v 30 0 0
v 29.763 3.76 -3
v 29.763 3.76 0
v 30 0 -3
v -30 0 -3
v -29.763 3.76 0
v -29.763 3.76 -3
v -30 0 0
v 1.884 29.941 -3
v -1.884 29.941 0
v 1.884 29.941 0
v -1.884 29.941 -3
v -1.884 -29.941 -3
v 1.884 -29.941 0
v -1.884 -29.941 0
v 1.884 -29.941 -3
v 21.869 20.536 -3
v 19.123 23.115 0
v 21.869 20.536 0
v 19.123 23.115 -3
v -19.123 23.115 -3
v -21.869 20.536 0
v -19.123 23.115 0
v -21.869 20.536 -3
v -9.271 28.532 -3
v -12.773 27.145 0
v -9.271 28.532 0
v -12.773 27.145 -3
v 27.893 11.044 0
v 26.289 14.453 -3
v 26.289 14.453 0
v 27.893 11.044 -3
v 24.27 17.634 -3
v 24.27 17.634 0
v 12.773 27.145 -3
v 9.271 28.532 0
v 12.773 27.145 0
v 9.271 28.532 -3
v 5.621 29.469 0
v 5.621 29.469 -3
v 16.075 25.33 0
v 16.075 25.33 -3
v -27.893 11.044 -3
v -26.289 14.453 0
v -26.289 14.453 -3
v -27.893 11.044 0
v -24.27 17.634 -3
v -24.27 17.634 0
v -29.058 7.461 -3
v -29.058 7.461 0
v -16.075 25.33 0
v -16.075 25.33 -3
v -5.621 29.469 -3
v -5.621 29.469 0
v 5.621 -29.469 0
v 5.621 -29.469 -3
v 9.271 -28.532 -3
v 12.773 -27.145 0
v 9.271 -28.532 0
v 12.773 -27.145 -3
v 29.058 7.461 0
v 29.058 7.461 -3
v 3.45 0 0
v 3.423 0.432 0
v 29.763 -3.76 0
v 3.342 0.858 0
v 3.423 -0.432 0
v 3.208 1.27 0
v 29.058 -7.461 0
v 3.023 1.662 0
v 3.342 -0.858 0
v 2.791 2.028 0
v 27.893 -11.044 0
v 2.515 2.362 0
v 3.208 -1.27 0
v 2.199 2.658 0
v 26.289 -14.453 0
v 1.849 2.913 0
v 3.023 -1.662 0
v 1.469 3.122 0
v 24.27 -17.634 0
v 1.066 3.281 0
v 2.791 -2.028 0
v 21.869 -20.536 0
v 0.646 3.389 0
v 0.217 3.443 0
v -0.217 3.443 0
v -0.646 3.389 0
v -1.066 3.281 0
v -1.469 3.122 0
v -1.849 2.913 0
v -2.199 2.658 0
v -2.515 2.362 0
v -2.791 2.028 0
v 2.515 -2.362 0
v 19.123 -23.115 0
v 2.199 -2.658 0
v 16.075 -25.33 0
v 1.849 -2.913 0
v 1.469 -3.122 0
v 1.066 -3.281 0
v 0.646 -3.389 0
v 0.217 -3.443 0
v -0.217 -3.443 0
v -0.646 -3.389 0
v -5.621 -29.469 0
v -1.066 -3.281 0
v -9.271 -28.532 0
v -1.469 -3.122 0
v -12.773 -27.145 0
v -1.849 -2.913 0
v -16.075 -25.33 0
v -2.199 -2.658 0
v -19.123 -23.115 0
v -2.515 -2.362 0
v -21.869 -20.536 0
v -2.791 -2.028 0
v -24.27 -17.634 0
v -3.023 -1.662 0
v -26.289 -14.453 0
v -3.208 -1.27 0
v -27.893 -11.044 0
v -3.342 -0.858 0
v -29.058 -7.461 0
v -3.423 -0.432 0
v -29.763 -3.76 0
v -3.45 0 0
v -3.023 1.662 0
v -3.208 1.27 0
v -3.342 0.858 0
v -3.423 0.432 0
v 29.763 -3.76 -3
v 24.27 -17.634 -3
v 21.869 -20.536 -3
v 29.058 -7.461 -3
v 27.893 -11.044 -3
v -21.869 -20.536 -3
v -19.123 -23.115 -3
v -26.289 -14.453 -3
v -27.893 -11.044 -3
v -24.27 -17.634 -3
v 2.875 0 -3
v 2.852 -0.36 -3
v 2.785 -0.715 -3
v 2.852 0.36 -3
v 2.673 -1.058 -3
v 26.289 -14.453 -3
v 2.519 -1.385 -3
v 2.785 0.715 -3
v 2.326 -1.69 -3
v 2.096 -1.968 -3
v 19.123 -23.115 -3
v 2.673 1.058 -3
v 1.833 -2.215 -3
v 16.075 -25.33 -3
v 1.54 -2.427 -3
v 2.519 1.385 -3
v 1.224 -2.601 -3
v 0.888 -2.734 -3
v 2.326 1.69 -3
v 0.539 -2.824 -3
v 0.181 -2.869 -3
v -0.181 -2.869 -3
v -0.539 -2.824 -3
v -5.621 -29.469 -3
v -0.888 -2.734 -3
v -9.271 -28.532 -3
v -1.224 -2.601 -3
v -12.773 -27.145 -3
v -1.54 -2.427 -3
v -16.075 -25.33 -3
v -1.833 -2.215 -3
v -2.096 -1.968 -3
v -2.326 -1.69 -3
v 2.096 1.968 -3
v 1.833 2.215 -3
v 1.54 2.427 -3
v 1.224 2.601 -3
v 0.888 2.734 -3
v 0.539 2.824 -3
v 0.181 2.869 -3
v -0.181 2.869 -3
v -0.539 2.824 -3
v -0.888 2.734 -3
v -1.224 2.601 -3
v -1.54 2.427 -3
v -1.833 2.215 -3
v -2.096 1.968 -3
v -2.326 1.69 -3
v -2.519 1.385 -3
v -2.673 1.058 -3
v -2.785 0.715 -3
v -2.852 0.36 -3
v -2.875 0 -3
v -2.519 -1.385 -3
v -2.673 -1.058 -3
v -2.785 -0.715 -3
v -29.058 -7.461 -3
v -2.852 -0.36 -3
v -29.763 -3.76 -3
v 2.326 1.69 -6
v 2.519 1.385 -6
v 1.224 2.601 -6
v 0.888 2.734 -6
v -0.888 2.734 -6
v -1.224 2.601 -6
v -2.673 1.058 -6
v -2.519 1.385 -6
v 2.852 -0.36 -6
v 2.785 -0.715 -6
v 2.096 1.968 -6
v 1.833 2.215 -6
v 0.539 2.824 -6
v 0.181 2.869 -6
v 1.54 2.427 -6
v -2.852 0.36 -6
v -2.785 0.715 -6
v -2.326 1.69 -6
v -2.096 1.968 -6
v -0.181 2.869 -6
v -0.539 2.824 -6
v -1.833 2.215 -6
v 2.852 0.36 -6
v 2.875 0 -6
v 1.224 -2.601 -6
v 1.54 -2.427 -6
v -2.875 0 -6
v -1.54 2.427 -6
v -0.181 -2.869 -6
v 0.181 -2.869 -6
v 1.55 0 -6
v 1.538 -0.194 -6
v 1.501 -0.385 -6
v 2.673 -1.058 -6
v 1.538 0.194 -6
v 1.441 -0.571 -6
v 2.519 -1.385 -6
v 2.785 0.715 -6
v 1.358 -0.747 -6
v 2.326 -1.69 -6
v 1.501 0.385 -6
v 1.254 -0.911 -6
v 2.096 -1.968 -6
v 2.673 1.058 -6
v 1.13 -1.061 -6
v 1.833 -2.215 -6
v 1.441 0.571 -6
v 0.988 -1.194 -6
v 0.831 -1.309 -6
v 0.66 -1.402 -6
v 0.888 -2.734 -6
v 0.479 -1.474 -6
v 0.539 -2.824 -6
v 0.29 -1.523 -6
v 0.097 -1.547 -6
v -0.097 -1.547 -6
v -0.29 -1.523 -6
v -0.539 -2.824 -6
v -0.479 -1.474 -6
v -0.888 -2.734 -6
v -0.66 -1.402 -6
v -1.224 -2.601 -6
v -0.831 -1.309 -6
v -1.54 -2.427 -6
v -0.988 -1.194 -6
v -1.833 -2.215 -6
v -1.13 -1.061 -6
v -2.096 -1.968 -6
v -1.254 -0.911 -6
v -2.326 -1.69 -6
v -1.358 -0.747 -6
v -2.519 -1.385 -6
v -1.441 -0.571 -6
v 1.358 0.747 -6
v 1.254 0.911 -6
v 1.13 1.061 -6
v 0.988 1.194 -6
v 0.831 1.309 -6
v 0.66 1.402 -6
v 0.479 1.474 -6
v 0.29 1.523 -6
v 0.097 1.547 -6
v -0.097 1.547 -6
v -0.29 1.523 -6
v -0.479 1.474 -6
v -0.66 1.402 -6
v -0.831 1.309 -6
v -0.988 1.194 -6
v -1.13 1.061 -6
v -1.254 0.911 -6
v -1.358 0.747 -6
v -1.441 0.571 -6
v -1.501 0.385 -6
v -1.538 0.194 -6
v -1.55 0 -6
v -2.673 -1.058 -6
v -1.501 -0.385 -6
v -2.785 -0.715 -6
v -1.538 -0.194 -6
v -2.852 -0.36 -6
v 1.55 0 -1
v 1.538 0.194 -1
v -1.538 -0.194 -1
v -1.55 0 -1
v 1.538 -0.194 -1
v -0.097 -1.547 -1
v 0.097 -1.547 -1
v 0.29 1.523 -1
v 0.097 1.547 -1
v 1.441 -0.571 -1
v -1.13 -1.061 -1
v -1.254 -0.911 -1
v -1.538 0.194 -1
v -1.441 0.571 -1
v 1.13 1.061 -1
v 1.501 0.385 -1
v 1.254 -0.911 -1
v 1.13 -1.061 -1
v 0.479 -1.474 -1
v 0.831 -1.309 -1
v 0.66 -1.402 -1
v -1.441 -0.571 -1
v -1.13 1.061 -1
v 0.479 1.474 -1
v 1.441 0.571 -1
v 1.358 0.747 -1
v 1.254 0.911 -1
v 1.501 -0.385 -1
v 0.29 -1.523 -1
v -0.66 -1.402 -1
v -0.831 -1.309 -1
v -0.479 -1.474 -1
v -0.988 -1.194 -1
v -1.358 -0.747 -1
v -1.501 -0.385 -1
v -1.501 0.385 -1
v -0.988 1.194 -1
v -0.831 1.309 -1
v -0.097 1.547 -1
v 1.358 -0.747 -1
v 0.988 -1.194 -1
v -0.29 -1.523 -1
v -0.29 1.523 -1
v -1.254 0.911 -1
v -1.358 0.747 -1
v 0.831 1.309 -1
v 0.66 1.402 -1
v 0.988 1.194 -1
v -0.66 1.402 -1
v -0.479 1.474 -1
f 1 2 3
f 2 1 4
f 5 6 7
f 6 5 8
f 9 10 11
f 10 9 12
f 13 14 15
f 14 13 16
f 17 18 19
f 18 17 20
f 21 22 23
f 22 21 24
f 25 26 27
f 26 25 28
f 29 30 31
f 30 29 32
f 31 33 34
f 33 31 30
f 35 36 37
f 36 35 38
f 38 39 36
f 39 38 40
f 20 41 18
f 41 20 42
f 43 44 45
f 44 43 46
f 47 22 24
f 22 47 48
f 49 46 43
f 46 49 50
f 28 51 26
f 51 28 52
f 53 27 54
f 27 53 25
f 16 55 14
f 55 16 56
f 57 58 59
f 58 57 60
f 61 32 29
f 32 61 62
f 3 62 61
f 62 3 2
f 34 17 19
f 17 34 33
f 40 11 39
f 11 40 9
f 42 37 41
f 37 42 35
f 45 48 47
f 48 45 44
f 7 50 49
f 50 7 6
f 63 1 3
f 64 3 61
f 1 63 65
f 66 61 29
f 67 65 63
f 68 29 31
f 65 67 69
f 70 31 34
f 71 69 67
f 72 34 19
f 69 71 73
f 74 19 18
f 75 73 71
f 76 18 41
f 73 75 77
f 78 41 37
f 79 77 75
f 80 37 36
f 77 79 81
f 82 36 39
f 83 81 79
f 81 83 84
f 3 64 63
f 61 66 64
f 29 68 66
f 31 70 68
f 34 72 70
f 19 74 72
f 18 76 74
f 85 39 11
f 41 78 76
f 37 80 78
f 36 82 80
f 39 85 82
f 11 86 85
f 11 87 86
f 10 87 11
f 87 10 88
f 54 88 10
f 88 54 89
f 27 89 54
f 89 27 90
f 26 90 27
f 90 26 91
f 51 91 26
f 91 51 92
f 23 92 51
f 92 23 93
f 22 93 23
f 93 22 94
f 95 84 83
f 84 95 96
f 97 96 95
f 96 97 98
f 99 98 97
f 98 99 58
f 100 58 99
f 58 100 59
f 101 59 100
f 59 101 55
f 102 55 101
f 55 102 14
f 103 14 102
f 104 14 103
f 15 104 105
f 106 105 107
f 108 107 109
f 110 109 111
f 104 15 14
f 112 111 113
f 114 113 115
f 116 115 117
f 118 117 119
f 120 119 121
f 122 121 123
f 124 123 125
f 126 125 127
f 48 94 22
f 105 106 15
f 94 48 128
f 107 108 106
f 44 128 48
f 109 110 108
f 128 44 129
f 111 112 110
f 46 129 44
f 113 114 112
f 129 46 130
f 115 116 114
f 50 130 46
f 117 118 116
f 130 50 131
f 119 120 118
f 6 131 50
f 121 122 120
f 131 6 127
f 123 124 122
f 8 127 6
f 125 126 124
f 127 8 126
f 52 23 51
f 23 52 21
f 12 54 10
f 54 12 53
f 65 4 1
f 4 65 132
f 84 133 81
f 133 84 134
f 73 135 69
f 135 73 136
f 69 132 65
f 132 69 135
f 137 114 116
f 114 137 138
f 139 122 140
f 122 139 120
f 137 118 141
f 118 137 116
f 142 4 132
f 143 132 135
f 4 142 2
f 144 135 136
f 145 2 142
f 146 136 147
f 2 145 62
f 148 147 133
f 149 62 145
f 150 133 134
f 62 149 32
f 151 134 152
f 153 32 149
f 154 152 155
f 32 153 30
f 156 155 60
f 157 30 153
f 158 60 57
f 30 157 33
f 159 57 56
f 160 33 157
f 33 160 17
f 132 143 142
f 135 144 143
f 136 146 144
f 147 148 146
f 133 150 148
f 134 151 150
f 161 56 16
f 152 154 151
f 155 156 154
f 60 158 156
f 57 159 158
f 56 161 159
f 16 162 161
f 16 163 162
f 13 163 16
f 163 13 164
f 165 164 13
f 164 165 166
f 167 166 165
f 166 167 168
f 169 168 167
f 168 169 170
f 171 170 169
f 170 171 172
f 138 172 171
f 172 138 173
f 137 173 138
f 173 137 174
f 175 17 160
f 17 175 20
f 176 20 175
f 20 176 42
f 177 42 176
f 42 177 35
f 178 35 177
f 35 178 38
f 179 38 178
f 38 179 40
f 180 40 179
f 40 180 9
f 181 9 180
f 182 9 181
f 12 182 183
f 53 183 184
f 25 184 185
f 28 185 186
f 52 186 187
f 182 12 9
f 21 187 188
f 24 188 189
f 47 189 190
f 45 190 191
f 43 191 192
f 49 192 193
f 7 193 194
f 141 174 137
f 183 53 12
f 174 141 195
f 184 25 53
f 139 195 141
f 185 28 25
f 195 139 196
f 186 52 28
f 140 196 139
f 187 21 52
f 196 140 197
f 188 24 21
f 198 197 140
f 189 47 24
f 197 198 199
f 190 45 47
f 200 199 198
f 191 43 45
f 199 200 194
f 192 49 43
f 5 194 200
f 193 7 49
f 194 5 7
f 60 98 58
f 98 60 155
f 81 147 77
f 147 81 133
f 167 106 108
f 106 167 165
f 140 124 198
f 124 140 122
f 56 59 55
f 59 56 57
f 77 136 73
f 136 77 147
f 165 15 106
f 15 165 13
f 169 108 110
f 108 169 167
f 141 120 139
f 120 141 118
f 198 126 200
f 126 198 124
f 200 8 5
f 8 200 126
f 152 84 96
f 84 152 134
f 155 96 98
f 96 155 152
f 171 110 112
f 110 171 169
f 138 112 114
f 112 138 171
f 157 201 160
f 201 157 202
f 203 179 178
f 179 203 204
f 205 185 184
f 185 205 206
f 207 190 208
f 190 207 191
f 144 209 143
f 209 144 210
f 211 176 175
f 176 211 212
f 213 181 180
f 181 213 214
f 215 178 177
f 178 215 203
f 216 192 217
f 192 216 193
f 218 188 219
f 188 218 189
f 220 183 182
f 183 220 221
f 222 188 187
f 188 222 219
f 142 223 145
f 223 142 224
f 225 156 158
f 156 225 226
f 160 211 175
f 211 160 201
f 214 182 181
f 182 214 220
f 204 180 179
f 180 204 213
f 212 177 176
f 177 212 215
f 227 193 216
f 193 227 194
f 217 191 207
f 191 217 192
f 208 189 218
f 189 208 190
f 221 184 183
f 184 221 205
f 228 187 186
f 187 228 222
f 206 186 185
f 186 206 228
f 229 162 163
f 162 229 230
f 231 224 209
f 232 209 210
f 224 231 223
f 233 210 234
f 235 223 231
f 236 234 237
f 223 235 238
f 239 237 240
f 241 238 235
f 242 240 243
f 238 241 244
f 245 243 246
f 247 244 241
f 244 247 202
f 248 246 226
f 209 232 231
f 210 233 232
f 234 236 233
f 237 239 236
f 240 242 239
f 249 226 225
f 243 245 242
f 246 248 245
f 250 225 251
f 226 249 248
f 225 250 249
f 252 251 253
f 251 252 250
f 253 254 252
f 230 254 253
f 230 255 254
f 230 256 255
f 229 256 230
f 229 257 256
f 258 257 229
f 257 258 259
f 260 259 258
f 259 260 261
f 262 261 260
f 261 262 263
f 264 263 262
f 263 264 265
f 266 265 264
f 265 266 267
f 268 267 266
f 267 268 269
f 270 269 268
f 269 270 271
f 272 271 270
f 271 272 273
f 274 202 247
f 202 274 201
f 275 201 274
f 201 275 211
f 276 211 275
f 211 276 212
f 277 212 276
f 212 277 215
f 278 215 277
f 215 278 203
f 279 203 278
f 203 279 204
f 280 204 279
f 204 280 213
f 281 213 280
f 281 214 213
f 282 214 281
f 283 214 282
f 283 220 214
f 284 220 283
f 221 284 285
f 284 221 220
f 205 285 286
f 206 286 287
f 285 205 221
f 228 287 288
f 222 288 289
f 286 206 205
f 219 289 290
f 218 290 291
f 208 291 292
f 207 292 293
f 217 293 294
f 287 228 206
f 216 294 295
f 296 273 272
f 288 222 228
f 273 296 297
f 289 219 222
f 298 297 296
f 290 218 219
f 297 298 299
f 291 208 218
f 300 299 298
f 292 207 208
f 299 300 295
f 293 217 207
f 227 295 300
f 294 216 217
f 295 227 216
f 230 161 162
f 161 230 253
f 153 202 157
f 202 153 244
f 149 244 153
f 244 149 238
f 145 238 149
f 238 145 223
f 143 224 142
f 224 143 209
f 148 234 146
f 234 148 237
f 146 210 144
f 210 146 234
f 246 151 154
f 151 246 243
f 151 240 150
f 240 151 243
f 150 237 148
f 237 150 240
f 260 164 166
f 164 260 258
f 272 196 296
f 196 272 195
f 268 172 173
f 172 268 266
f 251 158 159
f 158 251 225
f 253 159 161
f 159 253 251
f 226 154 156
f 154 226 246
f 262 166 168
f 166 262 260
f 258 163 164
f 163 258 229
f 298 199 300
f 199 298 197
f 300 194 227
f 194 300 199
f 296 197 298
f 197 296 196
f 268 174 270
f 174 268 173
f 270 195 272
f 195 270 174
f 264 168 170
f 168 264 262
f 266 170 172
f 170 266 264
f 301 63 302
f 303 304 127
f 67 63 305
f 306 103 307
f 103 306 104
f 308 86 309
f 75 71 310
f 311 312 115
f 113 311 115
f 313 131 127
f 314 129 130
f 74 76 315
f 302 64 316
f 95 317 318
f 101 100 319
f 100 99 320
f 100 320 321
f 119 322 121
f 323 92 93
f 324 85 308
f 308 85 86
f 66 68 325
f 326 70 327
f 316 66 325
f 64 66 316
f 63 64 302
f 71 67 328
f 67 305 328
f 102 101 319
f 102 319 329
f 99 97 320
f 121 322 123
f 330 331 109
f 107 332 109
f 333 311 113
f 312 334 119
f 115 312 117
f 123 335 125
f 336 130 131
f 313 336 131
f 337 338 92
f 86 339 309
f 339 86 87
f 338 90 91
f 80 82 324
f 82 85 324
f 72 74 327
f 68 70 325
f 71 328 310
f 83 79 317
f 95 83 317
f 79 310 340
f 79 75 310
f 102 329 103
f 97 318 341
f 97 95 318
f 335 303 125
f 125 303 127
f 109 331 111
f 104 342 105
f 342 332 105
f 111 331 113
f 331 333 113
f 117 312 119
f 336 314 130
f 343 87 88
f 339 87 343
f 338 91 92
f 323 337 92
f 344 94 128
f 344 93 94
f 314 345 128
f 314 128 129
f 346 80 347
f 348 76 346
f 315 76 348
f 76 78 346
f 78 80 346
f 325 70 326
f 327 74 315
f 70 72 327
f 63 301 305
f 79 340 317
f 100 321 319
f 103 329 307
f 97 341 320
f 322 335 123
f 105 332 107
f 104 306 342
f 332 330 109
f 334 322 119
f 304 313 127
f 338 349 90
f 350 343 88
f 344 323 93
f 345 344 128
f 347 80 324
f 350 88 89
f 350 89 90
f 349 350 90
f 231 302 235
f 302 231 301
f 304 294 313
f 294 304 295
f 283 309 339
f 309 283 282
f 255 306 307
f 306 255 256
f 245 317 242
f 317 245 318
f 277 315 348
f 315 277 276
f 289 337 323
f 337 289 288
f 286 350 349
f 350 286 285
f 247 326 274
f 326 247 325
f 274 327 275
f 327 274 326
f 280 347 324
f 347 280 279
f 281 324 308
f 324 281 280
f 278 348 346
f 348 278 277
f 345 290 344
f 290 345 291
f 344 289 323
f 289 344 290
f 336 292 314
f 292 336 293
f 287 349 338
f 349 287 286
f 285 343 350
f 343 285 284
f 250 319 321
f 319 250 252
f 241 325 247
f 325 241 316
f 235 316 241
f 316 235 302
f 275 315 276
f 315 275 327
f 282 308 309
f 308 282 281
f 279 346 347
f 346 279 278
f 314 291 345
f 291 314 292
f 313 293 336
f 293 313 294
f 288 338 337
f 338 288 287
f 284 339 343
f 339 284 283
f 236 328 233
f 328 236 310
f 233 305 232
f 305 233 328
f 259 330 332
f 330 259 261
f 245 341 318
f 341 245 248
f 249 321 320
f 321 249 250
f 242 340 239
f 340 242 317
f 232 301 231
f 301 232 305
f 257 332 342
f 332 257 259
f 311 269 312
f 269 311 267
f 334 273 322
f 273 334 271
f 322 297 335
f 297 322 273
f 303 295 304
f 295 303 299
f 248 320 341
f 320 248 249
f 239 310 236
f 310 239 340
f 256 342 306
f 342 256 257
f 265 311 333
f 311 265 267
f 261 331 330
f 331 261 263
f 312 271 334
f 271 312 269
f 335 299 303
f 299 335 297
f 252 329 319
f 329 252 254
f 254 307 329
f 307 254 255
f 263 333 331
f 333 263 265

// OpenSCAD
$fn = 50;


difference() {
	union() {
		translate(v = [0, 0, -3.0000000000]) {
			cylinder(h = 3, r = 30.0000000000);
		}
		translate(v = [0, 0, -6.0000000000]) {
			cylinder(h = 6, r = 2.8750000000);
		}
	}
	union() {
		translate(v = [0, 0, 0]) {
			rotate(a = [0, 0, 0]) {
				difference() {
					union() {
						translate(v = [0, 0, -6.0000000000]) {
							cylinder(h = 6, r = 1.2500000000);
						}
						translate(v = [0, 0, -1.0000000000]) {
							cylinder(h = 1.0000000000, r1 = 1.5500000000, r2 = 3.4500000000);
						}
						translate(v = [0, 0, -6.0000000000]) {
							cylinder(h = 6, r = 1.5500000000);
						}
						translate(v = [0, 0, -6.0000000000]) {
							cylinder(h = 6, r = 1.2500000000);
						}
					}
					union();
				}
			}
		}
	}
}
